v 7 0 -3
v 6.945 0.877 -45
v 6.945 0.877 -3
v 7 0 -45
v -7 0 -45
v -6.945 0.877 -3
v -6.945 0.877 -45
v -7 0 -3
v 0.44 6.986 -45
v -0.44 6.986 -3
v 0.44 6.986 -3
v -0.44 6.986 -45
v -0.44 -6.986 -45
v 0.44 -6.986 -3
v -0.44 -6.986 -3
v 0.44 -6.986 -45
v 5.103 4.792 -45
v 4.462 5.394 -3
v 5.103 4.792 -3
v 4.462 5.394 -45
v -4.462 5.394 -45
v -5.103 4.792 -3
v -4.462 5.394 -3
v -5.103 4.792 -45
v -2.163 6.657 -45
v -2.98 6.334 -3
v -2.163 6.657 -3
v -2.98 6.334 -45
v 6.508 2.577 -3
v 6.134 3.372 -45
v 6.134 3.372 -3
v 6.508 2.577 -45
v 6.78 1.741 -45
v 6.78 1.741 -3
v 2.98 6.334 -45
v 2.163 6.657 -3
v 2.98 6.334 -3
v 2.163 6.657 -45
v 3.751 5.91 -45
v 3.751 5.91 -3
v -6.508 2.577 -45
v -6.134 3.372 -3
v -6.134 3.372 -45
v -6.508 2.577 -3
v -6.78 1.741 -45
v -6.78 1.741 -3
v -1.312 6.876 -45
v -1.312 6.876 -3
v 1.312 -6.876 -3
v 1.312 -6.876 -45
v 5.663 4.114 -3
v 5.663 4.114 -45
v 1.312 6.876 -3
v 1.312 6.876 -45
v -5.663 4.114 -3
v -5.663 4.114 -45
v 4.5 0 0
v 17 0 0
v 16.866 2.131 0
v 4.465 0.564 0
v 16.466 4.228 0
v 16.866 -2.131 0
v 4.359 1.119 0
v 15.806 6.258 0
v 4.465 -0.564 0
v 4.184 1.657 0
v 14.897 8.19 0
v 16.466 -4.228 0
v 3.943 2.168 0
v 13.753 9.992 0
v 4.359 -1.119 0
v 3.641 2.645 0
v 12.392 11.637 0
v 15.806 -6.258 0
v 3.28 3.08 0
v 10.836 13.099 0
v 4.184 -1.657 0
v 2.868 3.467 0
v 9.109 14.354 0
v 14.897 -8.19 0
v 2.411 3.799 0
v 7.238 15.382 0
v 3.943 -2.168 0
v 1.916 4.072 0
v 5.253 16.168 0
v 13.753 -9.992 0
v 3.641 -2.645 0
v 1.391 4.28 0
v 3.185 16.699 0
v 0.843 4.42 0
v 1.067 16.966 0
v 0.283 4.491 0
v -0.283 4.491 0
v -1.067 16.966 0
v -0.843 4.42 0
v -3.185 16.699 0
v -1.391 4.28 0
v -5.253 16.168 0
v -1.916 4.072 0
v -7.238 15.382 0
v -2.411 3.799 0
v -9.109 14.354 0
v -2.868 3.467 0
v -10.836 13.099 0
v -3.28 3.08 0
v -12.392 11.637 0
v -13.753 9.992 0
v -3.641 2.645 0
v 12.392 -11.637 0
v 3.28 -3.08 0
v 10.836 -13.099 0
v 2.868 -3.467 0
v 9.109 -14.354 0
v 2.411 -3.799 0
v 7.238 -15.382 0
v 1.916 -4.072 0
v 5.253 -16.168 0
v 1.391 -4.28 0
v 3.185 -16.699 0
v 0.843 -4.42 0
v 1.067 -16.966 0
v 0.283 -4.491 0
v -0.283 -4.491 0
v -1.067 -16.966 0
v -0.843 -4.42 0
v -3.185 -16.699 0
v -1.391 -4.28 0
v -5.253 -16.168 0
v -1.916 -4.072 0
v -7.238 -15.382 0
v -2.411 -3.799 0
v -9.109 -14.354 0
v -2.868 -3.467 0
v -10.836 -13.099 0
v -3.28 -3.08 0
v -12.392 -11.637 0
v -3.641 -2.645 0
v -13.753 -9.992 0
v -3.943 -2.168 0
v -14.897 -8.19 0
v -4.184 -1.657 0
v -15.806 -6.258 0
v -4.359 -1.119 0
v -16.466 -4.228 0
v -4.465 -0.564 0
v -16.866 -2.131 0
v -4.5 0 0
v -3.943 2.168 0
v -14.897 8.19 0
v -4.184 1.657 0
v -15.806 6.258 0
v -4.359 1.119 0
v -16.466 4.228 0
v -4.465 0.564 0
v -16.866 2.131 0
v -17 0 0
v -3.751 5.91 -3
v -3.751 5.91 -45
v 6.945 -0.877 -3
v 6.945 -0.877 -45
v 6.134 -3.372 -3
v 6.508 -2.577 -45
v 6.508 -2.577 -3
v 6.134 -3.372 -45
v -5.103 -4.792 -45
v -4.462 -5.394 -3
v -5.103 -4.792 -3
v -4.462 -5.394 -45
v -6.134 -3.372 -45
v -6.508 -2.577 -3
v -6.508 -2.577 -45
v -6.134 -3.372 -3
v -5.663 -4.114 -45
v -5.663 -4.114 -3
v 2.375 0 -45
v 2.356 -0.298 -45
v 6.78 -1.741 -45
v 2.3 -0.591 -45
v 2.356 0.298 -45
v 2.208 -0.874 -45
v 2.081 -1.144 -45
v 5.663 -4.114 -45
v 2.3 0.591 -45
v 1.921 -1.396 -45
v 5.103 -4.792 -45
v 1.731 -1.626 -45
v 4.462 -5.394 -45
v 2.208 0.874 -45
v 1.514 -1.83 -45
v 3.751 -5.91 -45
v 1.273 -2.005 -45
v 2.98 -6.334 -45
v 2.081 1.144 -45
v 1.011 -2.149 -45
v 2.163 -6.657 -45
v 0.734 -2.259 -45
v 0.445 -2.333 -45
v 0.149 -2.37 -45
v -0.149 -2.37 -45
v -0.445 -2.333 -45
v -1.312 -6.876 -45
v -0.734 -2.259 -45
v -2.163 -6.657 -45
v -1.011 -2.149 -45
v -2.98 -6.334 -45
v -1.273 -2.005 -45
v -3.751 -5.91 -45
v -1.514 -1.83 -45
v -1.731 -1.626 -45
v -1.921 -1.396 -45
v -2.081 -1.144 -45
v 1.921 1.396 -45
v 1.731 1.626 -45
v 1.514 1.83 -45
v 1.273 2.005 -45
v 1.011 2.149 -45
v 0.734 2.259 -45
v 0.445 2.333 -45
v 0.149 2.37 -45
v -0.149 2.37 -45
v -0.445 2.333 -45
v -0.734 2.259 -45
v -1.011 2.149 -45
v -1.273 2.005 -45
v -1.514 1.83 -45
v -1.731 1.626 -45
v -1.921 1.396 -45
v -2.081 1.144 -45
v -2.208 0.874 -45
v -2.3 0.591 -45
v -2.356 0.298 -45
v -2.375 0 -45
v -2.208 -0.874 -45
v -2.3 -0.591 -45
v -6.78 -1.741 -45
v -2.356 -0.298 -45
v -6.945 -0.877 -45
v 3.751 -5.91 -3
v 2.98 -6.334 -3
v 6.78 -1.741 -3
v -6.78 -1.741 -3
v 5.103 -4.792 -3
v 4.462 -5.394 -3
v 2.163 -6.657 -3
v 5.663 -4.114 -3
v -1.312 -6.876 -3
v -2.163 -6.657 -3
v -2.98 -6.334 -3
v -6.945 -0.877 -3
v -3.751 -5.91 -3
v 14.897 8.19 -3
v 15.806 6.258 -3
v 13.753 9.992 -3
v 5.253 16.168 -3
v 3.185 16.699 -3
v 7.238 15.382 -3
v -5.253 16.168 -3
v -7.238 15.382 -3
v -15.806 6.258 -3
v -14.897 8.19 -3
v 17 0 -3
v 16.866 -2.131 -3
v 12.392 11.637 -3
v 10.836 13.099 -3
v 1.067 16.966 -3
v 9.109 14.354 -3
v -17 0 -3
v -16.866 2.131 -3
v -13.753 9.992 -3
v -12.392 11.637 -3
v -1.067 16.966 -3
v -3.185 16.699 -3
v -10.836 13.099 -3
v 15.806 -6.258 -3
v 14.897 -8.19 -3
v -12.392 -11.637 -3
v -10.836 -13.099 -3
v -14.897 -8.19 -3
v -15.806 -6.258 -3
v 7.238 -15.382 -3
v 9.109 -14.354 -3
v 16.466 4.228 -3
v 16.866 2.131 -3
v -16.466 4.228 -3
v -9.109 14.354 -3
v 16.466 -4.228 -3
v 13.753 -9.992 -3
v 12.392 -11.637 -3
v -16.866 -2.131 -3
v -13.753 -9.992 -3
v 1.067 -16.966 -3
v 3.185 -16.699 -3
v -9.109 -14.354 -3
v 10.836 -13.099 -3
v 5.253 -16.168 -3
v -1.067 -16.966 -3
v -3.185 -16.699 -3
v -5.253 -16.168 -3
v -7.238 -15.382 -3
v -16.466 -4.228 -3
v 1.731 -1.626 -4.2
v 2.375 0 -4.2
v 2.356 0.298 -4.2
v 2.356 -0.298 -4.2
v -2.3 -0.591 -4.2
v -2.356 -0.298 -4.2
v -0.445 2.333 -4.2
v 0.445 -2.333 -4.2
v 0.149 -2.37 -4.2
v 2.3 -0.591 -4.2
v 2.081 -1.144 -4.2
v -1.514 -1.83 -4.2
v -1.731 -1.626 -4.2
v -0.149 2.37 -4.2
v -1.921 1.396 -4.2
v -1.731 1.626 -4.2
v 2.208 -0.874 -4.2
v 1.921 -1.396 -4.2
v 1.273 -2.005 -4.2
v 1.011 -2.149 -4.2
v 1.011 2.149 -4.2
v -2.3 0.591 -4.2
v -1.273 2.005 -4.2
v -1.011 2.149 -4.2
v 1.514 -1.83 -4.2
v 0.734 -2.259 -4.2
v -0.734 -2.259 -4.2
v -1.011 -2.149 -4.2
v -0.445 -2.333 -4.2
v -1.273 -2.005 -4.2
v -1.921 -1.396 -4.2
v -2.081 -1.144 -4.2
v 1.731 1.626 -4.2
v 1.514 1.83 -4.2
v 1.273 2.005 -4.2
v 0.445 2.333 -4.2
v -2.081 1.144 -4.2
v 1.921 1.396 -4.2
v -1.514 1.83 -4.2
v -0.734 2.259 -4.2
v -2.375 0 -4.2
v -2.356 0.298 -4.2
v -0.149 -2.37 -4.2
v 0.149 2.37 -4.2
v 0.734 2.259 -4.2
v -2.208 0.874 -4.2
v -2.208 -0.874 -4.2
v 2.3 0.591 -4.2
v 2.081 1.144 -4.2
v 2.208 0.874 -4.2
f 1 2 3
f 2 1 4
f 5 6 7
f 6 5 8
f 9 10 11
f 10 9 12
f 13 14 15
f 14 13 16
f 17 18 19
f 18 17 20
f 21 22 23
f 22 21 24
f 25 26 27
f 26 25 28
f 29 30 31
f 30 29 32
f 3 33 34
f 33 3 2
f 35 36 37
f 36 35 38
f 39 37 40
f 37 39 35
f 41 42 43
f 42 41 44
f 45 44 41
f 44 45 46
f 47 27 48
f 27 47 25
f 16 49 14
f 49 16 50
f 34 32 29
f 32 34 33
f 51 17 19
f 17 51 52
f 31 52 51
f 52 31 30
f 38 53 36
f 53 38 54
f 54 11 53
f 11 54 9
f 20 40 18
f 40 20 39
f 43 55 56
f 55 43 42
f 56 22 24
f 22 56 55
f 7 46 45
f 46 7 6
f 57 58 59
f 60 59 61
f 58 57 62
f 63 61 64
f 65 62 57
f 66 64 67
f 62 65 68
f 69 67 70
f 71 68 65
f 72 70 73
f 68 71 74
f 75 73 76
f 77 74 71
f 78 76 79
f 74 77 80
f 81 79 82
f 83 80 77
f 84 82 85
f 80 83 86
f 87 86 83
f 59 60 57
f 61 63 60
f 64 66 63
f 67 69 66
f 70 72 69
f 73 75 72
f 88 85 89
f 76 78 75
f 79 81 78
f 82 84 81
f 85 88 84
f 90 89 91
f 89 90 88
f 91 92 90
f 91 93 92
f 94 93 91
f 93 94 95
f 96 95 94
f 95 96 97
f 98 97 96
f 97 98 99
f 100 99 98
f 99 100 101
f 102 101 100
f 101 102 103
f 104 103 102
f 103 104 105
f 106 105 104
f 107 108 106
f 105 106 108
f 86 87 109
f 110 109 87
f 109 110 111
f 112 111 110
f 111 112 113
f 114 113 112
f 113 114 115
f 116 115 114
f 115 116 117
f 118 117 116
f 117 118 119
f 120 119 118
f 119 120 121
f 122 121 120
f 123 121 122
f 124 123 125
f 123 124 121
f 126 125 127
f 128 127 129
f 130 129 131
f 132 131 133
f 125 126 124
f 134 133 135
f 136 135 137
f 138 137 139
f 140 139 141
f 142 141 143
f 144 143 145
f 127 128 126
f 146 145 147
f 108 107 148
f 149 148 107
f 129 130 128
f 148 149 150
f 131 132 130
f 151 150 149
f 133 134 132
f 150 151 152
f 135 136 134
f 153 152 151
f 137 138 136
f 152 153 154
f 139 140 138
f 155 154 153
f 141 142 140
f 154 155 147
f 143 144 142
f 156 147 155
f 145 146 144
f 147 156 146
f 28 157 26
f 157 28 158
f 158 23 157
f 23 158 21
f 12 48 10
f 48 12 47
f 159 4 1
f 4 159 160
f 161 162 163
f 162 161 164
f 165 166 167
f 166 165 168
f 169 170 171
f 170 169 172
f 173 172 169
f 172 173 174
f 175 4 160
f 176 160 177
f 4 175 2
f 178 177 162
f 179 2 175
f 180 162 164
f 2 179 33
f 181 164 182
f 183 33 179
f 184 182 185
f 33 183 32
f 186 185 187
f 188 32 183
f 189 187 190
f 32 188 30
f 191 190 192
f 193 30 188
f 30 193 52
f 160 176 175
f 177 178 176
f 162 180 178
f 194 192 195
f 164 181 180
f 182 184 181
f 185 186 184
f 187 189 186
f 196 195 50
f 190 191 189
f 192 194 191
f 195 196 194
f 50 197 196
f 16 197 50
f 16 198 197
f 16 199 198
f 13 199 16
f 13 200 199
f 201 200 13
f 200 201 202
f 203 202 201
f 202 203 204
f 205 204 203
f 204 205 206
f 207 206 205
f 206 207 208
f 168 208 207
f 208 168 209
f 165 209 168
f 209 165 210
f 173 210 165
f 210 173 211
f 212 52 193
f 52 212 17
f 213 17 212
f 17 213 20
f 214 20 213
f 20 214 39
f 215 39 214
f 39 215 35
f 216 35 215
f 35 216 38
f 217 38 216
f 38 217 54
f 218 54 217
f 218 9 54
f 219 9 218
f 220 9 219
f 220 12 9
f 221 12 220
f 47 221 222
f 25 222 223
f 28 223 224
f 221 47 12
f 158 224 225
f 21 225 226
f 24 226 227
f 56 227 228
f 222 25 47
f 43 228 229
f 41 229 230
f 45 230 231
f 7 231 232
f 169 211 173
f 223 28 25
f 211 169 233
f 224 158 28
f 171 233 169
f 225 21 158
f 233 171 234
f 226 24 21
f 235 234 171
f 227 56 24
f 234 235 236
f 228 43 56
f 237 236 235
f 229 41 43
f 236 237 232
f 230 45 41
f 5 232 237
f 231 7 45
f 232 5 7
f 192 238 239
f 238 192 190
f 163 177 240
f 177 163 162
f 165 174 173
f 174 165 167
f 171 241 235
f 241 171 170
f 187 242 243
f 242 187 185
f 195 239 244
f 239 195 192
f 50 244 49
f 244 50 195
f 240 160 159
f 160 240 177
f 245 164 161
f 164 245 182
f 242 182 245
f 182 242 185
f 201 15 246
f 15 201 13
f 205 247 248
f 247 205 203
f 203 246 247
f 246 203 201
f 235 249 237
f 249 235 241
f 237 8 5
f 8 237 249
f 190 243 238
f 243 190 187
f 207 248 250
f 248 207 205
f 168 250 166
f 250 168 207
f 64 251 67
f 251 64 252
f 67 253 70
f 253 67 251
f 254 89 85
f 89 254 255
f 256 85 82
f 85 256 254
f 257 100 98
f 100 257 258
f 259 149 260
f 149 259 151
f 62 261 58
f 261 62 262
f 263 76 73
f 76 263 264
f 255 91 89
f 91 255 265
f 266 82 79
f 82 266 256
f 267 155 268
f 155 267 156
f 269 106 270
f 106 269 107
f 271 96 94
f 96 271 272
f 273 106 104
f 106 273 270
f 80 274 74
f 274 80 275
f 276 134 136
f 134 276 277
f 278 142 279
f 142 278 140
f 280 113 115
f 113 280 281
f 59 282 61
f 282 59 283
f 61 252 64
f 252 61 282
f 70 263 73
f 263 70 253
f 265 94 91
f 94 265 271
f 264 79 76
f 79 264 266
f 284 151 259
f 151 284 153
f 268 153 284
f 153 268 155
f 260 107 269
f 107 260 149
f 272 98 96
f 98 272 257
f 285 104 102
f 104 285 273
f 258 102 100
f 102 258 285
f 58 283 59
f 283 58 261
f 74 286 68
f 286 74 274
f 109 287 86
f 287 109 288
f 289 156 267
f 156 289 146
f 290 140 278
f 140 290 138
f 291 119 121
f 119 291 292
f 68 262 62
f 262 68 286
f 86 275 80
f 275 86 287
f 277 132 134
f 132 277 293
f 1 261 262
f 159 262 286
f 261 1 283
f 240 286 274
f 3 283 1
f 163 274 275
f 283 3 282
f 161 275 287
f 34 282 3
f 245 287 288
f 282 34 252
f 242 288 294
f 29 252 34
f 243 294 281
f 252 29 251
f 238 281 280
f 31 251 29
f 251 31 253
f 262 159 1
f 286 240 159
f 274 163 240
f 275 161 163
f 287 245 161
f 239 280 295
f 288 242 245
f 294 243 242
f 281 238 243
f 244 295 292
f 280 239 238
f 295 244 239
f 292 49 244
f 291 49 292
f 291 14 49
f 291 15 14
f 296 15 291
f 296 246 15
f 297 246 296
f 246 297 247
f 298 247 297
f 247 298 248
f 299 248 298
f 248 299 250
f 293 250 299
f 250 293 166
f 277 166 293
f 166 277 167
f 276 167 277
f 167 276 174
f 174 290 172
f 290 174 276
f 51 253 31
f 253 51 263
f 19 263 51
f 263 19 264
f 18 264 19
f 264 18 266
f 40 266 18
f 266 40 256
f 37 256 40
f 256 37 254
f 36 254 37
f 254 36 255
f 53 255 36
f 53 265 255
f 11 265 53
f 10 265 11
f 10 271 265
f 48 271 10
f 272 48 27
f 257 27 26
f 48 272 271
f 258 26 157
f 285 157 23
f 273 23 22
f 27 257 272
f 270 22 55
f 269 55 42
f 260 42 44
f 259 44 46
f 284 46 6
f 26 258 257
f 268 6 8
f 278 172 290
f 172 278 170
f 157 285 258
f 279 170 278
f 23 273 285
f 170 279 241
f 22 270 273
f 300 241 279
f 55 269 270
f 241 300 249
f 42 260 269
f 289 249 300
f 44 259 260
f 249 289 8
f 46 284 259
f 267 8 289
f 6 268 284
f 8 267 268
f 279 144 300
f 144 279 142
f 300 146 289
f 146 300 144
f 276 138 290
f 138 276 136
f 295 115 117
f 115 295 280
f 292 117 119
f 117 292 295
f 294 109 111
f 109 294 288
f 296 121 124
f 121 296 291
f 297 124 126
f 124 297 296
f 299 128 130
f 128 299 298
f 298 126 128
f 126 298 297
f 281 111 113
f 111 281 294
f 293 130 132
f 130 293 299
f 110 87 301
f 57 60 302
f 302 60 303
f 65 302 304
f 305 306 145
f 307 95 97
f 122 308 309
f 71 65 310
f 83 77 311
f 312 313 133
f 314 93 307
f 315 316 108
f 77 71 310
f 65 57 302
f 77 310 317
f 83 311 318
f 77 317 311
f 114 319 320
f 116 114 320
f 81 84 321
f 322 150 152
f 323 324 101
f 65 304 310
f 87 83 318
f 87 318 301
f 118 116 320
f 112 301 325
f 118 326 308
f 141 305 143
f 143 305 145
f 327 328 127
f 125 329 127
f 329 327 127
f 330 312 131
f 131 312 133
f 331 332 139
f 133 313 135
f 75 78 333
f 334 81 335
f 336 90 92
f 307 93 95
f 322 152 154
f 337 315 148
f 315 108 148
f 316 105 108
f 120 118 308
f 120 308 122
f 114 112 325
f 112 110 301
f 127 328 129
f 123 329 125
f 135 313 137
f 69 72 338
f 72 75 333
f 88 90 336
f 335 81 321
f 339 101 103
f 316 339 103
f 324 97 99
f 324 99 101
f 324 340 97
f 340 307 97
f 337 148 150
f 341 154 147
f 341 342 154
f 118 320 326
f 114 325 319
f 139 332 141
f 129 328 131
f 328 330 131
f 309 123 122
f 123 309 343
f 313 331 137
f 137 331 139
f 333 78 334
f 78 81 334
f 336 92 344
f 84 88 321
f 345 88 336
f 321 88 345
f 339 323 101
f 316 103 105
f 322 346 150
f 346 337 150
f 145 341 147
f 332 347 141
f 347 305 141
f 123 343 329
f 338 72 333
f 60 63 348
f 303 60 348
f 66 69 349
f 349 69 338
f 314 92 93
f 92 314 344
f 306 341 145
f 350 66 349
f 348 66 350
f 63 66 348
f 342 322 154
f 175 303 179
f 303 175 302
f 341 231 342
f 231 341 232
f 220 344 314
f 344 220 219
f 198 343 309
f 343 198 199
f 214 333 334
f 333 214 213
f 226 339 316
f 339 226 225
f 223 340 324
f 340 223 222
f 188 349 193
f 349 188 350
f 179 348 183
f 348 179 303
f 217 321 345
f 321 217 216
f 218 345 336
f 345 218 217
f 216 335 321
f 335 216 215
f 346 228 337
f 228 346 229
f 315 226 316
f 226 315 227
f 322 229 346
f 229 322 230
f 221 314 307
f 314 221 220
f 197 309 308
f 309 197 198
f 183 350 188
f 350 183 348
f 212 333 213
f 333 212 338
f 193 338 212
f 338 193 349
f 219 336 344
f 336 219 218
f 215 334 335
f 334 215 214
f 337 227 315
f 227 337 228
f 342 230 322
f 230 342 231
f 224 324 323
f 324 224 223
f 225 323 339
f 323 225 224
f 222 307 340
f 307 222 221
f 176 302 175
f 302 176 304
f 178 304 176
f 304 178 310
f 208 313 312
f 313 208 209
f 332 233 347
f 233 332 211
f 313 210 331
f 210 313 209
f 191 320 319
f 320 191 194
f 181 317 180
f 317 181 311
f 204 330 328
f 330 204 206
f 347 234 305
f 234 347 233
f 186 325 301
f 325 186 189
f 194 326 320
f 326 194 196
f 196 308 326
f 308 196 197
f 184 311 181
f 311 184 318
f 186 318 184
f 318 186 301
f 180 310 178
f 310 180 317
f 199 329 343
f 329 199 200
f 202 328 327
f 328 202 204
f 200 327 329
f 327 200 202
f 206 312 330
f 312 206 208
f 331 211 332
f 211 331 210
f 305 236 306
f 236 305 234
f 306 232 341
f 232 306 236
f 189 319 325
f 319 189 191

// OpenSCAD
$fn = 50;


difference() {
	union() {
		translate(v = [0, 0, -45.0000000000]) {
			cylinder(h = 45, r = 7.0000000000);
		}
		translate(v = [0, 0, -3.0000000000]) {
			cylinder(h = 3, r = 17.0000000000);
		}
	}
	union() {
		translate(v = [0, 0, 0]) {
			rotate(a = [0, 0, 0]) {
				difference() {
					union() {
						#translate(v = [0, 0, -45.0000000000]) {
							cylinder(h = 45, r = 2.2500000000);
						}
						#translate(v = [0, 0, -4.2000000000]) {
							cylinder(h = 4.2000000000, r1 = 2.3750000000, r2 = 4.5000000000);
						}
						#translate(v = [0, 0, -45.0000000000]) {
							cylinder(h = 45, r = 2.3750000000);
						}
						#translate(v = [0, 0, -45.0000000000]) {
							cylinder(h = 45, r = 2.2500000000);
						}
					}
					union();
				}
			}
		}
	}
}
